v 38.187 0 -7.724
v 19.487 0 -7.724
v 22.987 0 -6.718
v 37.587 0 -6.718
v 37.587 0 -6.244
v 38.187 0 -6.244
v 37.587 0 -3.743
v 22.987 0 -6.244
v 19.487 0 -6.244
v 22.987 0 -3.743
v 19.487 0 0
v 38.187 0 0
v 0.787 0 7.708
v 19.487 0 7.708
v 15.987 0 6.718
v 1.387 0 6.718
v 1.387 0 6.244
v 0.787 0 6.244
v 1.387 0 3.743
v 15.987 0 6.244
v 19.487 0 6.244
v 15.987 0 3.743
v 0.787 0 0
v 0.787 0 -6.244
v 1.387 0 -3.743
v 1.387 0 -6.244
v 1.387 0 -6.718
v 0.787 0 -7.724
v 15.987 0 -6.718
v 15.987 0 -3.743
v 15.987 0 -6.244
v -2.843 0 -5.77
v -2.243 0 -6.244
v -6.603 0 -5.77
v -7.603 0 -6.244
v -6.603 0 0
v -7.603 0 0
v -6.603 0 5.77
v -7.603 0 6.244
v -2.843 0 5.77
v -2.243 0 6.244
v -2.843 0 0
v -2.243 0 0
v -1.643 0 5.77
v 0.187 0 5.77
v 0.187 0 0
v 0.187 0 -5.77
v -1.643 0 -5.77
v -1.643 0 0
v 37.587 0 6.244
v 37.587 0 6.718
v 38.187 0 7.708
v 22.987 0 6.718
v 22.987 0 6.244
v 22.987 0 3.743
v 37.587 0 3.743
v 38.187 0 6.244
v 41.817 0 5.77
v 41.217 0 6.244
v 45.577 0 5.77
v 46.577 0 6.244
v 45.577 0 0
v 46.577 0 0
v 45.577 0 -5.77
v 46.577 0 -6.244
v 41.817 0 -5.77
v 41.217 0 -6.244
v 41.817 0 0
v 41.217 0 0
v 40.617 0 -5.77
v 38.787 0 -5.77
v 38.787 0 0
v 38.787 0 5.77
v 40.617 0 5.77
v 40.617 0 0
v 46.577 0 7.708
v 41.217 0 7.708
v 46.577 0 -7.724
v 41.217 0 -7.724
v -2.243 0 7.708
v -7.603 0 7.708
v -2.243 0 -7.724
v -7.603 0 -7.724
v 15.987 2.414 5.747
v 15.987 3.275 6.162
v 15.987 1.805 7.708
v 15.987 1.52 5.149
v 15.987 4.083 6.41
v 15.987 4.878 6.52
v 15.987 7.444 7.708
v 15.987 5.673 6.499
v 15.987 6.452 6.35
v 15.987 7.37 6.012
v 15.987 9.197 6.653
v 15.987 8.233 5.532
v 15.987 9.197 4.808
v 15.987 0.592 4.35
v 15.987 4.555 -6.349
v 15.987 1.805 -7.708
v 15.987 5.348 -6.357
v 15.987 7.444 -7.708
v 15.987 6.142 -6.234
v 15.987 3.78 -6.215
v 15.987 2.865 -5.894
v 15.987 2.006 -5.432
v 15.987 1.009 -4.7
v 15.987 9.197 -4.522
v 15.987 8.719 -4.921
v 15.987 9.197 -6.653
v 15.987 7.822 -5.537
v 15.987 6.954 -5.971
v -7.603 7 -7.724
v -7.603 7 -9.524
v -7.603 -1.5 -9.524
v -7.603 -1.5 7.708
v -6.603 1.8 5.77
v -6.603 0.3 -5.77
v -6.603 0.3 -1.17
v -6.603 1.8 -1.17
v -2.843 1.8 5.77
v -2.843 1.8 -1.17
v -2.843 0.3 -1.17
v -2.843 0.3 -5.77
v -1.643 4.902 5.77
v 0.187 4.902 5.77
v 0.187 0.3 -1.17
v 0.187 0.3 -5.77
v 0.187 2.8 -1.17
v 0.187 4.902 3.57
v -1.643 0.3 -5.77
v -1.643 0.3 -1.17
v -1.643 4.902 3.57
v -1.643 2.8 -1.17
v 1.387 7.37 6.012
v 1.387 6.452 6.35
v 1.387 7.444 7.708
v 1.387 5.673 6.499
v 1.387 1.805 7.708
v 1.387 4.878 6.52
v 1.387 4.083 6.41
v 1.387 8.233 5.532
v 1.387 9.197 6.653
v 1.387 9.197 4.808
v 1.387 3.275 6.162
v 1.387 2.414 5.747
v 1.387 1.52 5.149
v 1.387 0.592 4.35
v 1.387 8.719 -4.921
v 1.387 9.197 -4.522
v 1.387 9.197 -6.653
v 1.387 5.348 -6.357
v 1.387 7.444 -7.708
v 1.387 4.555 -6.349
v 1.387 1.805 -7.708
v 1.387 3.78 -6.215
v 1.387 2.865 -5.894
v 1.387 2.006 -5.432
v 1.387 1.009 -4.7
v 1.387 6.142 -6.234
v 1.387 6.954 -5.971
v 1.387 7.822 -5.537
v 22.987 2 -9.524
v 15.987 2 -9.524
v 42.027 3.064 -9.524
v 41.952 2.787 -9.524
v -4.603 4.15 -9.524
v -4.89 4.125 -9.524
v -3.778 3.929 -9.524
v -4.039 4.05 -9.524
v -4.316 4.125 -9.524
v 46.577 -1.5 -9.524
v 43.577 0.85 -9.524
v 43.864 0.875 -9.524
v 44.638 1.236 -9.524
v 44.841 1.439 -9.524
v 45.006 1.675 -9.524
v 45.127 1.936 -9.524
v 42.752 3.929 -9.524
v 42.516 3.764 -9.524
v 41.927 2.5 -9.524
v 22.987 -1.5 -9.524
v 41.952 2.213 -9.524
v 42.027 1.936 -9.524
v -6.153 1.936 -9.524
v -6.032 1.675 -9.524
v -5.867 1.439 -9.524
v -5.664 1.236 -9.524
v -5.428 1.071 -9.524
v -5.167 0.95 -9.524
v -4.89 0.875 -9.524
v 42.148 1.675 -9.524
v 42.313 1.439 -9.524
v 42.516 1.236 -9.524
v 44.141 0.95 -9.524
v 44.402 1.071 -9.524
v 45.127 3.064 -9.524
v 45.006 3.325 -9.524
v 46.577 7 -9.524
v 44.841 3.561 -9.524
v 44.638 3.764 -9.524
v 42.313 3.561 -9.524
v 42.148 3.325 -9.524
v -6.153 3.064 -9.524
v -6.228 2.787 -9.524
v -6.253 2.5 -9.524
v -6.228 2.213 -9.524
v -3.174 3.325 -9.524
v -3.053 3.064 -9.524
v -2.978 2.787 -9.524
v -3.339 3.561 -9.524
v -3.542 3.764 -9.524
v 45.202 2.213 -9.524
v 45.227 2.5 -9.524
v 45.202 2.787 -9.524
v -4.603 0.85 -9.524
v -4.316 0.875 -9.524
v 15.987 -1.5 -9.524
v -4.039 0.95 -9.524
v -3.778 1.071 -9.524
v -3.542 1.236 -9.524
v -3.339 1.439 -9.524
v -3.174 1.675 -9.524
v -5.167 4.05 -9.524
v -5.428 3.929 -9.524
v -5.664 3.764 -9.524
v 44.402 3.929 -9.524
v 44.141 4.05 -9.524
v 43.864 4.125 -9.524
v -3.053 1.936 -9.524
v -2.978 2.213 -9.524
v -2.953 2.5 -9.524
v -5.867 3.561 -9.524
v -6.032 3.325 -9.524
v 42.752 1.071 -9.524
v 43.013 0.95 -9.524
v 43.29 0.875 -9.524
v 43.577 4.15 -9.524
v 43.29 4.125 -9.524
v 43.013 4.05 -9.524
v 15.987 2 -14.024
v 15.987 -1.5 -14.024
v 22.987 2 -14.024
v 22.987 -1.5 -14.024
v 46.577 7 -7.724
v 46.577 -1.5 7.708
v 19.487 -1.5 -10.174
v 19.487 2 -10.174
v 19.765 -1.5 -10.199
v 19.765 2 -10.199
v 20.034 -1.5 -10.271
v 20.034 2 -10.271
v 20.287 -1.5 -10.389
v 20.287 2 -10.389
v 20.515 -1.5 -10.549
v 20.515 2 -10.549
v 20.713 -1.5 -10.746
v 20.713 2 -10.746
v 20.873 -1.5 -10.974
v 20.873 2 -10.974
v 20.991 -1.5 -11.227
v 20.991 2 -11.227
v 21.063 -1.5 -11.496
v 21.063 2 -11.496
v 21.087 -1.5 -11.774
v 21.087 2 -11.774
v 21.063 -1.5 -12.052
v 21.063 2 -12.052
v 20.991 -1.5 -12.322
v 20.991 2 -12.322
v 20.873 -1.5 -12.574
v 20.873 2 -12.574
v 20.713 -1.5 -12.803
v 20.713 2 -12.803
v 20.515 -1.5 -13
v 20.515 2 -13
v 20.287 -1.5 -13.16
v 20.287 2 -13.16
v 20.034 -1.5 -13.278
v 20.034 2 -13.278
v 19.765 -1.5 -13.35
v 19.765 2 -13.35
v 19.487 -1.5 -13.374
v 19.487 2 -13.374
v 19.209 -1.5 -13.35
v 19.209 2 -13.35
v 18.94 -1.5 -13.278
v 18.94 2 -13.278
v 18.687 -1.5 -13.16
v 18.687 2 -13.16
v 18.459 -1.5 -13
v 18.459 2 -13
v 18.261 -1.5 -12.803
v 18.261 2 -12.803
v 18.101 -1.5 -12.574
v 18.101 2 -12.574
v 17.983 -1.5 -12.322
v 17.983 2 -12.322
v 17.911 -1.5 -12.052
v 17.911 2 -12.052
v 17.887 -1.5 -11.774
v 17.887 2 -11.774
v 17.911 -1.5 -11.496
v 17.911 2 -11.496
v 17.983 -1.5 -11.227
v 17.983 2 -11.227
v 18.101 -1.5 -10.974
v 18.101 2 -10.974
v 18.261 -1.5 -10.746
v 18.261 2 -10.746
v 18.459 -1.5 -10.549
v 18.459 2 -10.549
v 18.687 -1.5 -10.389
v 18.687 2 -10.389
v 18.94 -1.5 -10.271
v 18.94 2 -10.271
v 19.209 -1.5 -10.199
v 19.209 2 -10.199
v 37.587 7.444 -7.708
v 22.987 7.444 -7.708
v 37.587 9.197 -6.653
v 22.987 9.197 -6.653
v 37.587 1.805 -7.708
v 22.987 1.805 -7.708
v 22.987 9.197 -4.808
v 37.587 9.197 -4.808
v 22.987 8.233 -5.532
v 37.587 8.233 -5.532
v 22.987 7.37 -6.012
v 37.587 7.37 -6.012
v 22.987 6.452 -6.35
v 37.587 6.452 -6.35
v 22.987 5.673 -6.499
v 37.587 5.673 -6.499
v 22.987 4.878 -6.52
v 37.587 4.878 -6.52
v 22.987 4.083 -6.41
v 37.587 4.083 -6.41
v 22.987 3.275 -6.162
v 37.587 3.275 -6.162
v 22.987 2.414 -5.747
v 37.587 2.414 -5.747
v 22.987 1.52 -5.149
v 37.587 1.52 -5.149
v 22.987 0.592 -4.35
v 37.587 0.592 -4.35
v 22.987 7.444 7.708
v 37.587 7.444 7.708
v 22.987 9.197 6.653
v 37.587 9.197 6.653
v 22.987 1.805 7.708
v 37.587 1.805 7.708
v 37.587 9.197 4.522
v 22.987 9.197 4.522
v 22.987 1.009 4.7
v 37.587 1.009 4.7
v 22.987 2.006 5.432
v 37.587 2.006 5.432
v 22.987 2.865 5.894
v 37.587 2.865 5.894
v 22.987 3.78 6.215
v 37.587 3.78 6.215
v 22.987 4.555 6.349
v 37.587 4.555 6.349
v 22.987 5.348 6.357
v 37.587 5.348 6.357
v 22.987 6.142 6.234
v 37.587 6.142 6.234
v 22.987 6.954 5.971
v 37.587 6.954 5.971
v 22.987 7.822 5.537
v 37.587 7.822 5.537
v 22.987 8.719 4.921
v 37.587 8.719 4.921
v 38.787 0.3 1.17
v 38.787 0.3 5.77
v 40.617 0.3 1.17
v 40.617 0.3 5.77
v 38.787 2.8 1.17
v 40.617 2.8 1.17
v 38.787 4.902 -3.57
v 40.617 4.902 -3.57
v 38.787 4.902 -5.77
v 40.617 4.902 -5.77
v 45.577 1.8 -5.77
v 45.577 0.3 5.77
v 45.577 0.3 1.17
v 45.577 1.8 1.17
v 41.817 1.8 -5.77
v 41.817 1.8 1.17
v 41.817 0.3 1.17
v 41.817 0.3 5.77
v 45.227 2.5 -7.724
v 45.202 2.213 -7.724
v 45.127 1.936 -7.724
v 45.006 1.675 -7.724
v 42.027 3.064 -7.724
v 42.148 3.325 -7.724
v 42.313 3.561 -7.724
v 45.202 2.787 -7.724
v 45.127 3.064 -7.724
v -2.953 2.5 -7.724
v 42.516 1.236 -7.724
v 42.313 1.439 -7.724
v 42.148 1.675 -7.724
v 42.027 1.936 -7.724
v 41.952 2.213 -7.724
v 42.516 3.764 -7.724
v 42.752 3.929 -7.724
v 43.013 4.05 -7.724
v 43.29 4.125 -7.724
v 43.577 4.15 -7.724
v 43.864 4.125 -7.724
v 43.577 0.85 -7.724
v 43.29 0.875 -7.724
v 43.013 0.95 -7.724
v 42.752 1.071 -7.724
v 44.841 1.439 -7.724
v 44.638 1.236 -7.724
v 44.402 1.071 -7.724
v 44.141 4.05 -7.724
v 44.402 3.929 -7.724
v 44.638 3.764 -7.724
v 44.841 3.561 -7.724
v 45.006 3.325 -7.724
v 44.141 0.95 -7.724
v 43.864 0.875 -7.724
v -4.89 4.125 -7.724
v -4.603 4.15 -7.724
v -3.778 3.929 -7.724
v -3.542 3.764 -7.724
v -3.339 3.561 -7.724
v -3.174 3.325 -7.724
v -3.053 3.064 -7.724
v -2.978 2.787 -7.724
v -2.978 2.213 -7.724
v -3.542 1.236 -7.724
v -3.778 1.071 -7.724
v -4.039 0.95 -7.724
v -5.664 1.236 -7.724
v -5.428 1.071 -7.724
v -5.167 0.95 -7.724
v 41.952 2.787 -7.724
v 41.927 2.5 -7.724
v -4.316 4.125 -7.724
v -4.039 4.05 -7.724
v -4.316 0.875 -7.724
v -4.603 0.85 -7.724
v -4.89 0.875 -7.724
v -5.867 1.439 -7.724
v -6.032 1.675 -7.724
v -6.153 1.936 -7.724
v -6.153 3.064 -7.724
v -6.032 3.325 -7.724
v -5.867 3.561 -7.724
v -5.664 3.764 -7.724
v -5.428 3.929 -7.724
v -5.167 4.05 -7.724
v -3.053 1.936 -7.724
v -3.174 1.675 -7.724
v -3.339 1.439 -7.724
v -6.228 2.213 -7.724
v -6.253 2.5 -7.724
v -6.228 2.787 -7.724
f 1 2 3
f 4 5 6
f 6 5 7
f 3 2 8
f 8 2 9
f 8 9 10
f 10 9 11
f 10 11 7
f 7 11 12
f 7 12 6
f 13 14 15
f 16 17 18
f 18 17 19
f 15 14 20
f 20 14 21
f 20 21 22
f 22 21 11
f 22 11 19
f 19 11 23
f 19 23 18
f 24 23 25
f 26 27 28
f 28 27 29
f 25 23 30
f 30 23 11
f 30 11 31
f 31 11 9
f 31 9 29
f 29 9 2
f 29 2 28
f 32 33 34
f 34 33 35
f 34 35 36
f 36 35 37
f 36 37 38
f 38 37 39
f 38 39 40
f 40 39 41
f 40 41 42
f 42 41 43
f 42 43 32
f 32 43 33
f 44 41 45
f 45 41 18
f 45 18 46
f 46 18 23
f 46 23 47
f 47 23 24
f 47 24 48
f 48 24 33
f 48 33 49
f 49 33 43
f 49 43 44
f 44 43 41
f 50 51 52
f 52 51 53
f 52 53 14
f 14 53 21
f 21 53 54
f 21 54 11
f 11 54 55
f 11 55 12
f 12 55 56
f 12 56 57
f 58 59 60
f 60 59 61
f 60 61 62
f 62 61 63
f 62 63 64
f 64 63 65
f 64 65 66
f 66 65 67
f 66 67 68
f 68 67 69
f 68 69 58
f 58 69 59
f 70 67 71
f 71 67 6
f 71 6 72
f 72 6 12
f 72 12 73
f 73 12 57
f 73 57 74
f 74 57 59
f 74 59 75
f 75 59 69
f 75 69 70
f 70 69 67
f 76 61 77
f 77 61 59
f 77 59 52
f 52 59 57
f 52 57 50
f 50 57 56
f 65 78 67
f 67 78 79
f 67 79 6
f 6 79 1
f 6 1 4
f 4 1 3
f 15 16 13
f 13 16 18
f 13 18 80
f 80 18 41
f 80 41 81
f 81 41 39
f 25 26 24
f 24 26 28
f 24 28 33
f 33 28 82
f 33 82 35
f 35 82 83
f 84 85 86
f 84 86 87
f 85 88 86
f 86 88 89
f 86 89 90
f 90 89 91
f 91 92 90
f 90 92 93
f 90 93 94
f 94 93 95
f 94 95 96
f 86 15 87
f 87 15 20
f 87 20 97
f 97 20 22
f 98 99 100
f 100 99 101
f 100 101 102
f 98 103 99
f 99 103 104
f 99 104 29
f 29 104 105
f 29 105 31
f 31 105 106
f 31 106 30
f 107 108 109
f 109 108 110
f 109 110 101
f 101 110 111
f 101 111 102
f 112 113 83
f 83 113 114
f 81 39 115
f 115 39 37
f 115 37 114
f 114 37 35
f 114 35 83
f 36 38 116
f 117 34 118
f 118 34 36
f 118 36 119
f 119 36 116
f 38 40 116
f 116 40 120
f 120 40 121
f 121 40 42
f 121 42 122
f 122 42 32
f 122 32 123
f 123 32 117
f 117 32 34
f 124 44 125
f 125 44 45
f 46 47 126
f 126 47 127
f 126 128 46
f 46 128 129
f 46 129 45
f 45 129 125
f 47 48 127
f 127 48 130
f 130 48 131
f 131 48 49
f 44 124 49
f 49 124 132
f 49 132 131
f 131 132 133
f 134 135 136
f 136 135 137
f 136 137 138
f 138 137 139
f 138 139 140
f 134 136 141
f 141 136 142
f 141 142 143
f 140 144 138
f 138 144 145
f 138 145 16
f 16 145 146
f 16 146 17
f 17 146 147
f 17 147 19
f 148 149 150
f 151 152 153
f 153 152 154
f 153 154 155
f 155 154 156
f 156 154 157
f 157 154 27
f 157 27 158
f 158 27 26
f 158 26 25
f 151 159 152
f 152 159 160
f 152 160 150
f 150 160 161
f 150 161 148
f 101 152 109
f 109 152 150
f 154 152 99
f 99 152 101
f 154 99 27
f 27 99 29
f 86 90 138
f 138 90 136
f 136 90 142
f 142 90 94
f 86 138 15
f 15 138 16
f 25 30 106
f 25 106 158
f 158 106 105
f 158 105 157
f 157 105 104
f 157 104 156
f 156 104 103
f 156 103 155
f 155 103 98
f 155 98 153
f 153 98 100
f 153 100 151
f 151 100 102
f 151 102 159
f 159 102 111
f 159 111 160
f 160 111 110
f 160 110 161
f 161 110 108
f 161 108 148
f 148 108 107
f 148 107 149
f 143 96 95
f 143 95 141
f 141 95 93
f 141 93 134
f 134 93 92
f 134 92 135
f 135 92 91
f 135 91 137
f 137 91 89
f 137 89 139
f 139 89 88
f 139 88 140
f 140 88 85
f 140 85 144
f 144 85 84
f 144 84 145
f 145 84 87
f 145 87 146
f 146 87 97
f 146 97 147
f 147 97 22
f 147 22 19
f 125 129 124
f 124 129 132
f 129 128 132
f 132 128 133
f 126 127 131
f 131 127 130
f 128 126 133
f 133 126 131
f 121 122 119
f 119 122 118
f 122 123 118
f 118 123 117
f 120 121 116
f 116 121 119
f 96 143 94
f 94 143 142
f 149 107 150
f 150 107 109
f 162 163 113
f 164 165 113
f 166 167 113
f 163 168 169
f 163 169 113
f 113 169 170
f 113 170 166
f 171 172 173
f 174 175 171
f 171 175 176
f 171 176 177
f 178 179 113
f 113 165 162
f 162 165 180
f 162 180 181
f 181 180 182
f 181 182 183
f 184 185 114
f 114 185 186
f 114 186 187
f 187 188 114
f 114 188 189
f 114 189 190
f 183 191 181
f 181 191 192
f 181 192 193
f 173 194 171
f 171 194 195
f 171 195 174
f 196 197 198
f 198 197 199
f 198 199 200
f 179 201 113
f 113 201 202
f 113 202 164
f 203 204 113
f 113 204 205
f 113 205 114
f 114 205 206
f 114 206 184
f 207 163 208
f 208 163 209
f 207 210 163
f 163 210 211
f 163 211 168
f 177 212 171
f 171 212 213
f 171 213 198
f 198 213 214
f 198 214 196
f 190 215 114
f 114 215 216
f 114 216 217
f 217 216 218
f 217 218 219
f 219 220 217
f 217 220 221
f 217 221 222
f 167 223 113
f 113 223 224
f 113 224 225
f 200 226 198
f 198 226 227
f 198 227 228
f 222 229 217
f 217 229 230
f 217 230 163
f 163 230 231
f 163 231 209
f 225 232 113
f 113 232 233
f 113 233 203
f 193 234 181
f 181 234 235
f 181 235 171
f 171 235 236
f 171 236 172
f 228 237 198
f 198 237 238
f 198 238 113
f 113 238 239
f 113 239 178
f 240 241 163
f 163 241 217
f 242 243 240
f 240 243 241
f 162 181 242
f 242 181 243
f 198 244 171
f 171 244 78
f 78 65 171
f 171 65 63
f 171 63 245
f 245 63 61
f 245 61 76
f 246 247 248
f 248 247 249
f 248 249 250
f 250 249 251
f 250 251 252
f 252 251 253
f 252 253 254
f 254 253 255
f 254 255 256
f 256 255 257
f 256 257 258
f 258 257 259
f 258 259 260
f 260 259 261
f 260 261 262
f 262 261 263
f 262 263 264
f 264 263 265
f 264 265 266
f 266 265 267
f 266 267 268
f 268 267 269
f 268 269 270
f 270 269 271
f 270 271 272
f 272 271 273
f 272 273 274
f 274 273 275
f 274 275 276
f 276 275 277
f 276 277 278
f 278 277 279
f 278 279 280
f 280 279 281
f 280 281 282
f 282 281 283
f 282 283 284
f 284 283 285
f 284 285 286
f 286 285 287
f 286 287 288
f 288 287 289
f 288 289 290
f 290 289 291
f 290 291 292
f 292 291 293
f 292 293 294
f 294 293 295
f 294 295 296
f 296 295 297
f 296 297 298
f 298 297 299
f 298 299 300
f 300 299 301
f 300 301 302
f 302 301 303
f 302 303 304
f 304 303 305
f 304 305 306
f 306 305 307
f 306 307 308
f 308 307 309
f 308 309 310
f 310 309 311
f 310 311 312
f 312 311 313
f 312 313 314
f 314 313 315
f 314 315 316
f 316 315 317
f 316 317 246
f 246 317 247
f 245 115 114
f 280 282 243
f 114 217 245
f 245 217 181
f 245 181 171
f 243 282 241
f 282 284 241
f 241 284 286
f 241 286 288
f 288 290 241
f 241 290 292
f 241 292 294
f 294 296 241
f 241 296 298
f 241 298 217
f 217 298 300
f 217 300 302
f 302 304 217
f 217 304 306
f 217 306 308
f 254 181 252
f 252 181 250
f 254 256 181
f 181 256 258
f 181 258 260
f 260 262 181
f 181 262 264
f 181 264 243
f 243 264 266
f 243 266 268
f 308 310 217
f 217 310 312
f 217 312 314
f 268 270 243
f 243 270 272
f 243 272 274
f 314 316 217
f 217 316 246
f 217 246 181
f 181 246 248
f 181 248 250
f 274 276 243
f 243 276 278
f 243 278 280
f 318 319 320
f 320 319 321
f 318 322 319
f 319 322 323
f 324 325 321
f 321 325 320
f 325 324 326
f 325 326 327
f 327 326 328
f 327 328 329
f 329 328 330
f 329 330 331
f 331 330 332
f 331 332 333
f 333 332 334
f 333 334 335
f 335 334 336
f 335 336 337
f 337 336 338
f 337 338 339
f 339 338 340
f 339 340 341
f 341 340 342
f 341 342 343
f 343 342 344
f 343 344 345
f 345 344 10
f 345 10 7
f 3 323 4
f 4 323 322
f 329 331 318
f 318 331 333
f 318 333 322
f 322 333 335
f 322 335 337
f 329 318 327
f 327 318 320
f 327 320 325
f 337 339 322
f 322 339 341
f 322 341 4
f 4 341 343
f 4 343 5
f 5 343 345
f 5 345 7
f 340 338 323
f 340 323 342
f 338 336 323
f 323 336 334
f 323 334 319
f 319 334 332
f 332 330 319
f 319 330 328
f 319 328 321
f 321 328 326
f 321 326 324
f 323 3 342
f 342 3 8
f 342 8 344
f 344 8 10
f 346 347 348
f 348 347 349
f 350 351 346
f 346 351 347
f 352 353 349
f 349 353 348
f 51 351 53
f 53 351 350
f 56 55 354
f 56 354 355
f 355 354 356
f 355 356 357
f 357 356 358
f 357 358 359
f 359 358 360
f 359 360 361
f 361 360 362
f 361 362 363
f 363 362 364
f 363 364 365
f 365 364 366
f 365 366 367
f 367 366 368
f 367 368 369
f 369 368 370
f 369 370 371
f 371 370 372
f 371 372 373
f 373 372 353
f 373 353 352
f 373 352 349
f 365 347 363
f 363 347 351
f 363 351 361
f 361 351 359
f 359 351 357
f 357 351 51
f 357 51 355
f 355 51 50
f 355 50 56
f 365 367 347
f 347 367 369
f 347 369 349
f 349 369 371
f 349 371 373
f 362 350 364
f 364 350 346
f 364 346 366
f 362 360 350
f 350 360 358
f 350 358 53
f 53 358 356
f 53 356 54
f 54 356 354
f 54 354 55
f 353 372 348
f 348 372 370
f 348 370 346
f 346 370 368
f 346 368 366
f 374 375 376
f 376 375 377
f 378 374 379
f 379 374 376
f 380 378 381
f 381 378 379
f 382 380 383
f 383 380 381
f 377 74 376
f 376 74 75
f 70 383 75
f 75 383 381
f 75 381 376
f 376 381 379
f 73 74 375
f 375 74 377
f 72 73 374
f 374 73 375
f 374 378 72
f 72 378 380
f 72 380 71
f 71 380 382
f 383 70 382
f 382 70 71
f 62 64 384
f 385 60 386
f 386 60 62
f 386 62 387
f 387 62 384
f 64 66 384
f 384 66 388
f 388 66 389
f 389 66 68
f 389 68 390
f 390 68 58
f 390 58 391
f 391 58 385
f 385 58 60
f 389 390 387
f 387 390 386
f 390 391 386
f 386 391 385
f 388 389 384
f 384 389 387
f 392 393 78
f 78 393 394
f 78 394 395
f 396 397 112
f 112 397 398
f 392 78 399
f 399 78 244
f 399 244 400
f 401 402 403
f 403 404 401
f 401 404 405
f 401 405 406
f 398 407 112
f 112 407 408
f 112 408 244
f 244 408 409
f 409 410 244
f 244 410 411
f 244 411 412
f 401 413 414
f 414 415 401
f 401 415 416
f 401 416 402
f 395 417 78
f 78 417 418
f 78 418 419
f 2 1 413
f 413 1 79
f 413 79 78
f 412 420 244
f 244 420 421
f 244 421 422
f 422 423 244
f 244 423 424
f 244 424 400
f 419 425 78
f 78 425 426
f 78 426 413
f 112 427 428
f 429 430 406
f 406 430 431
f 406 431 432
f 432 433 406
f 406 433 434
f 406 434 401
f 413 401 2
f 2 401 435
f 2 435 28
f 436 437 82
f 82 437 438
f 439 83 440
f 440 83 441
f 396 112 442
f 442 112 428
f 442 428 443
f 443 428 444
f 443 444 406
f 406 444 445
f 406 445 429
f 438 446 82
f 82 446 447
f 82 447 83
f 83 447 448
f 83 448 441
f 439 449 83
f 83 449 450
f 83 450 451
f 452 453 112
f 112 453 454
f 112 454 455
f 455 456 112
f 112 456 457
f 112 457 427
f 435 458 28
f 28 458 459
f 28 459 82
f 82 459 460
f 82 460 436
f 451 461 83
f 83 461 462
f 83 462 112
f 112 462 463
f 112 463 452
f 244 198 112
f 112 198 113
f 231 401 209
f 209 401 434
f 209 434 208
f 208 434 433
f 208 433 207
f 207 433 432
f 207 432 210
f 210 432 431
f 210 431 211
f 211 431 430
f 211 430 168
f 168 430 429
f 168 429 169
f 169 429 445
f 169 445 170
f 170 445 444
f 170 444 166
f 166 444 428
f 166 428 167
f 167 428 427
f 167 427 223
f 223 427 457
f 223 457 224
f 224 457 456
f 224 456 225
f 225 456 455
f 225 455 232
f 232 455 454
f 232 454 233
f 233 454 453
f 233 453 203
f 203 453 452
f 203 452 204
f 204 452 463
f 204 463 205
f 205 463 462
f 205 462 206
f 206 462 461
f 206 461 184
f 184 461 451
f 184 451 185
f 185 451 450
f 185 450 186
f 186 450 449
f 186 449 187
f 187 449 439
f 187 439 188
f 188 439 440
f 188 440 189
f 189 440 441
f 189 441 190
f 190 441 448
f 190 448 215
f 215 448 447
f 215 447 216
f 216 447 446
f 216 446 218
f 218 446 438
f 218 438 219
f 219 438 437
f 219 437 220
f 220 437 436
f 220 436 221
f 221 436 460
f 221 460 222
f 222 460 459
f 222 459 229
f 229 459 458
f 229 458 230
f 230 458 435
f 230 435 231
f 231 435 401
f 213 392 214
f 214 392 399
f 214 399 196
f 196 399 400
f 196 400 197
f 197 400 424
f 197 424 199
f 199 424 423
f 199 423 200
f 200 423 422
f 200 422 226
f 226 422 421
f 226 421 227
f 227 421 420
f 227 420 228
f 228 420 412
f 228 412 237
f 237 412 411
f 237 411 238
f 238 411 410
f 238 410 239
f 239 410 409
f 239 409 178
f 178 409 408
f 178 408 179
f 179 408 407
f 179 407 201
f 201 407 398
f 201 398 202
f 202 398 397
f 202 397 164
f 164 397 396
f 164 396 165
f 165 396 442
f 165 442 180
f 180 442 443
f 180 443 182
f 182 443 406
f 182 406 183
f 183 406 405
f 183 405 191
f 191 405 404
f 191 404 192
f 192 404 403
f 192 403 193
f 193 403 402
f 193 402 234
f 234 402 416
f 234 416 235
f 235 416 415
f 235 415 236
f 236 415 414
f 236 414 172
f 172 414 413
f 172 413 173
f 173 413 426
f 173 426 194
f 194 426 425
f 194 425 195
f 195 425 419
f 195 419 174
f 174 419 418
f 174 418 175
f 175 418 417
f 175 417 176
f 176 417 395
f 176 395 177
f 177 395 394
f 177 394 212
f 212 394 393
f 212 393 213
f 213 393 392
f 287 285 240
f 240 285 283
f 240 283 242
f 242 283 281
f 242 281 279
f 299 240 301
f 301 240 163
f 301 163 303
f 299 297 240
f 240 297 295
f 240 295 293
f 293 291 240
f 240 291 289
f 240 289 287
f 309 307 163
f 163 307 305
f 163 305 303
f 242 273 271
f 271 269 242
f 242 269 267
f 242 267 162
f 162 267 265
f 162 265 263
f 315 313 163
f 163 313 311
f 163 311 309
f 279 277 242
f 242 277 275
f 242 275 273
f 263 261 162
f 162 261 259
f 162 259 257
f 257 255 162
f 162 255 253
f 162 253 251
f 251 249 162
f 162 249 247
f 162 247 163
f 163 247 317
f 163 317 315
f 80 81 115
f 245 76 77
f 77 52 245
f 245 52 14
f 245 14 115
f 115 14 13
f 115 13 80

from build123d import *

# Parameters (mm, degrees)
SKETCH_1_W               = 23.59
SKETCH_1_H               = 12.34
EXTRUDE_1_DEPTH          = 1
SKETCH_1_3_W             = 14.6
SKETCH_1_3_H             = 2.72
SKETCH_1_3_W_2           = 3.76
SKETCH_1_3_H_2           = 11.54
SKETCH_1_3_W_3           = 1.83
EXTRUDE_2_DEPTH          = 10
EXTRUDE_3_DEPTH          = 14.6
CUT_EXTRUDE_1_DEPTH      = 14.6
CUT_EXTRUDE_2_DEPTH      = 14.6
CUT_EXTRUDE_3_DEPTH      = 14.6
PATTERN_CIRCULAR_1_COUNT = 2
SKETCH_7_W               = 20.64829466
SKETCH_7_H               = 2.860597992
CUT_EXTRUDE_4_DEPTH      = 38.6
SKETCH_8_R               = 1.6
EXTRUDE_4_DEPTH          = 1.5
SKETCH_9_W               = 54.18
SKETCH_9_H               = 1.8
EXTRUDE_5_DEPTH          = 7
SKETCH_10_R              = 1.65
CUT_EXTRUDE_5_DEPTH      = 5
EXTRUDE_START            = 2
SKETCH_8_3_W             = 7
SKETCH_8_3_H             = 4.5
SKETCH_8_3_R             = 1.6
EXTRUDE_6_DEPTH          = 2
SKETCH_11_W              = 54.18
SKETCH_11_H              = 6.653379434
CUT_EXTRUDE_6_DEPTH      = 5


with BuildPart() as part:
    # 草图1 → 凸台-拉伸1 (new body)
    with BuildSketch(Plane(origin=(0, 0, 0), x_dir=(1, 0, 0), z_dir=(0, 1, 0))):
        with Locations((4.192, 0)):
            Rectangle(SKETCH_1_W, SKETCH_1_H)
    extrude(amount=-EXTRUDE_1_DEPTH)

    # 草图1<3> → 凸台-拉伸2 (add)
    with BuildSketch(Plane(origin=(0, 0, 0), x_dir=(1, 0, 0), z_dir=(0, 1, 0))):
        with Locations((8.687, 4.81)):
            Rectangle(SKETCH_1_3_W, SKETCH_1_3_H)
        with Locations((8.687, -4.81)):
            Rectangle(SKETCH_1_3_W, SKETCH_1_3_H)
        with Locations((-4.723, 0)):
            Rectangle(SKETCH_1_3_W_2, SKETCH_1_3_H_2)
        with Locations((-0.728, 0)):
            Rectangle(SKETCH_1_3_W_3, SKETCH_1_3_H_2)
    extrude(amount=EXTRUDE_2_DEPTH)

    # 草图4 → 凸台-拉伸3 (add)
    with BuildSketch(Plane(origin=(15.987, 0, 0), x_dir=(0, 0, -1), z_dir=(1, 0, 0))):
        Polygon((6.17, 10), (7.707580576, 7.443577481), (7.707580576, 1.805314446), (6.17, -1), align=None)
        Polygon((-7.707580576, 1.805314446), (-6.17, -1), (-6.17, 10), (-7.707580576, 7.443577481), align=None)
    extrude(amount=-EXTRUDE_3_DEPTH)

    # 草图3 → 切除-拉伸1 (cut)
    with BuildSketch(Plane(origin=(15.987, 0, 0), x_dir=(0, 0, -1), z_dir=(1, 0, 0))):
        with BuildLine():
            Line((3.45, 0), (3.743222721, 0))
            add(Edge.make_bspline(
                [(3.743222721, 0), (3.911611309, 0.15963804), (4.29393083, 0.539845441), (4.994683036, 1.333496486), (5.723480991, 2.402845903), (6.251271172, 3.695549278), (6.429364414, 5), (6.251271172, 6.304450722), (5.723480991, 7.597154097), (4.994683036, 8.666503514), (4.253106755, 9.506390689), (3.815688064, 9.935054209), (3.597380816, 10.136172737)],
                knots=[0.014828564, 0.014828564, 0.014828564, 0.014828564, 0.0625, 0.125, 0.25, 0.375, 0.5, 0.625, 0.75, 0.875, 0.9375, 0.998871937, 0.998871937, 0.998871937, 0.998871937], degree=3))
            Line((3.597380816, 10.136172737), (3.45, 10))
            Line((3.45, 10), (3.45, 0))
        make_face()
        with BuildLine():
            Line((-3.45, 0), (-3.743222721, 0))
            add(Edge.make_bspline(
                [(-3.743222721, 0), (-3.781981306, 0.035623699), (-3.849464206, 0.098316559), (-4.072000203, 0.30899054), (-4.461726475, 0.698324492), (-5.152564834, 1.48074741), (-5.881362789, 2.550096827), (-6.40915297, 3.842800202), (-6.587246212, 5.147250924), (-6.40915297, 6.451701646), (-5.881362789, 7.744405021), (-5.152564834, 8.813754438), (-4.461708764, 9.596197415), (-4.071967827, 9.985543512), (-3.84942965, 10.196217487), (-3.781968617, 10.258889811), (-3.743222721, 10.294501848)],
                knots=[0, 0, 0, 0, 0.010893382, 0.018155637, 0.0625, 0.125, 0.25, 0.375, 0.5, 0.625, 0.75, 0.875, 0.9375, 0.981850307, 0.989110184, 1, 1, 1, 1], degree=3))
            Line((-3.743222721, 10.294501848), (-3.45, 10))
            Line((-3.45, 10), (-3.45, 0))
        make_face()
    extrude(amount=-CUT_EXTRUDE_1_DEPTH, mode=Mode.SUBTRACT)

    # 草图5 → 切除-拉伸2 (cut)
    with BuildSketch(Plane(origin=(0.187, 0, 0), x_dir=(0, 0, -1), z_dir=(1, 0, 0))):
        Polygon((1.17, 2.8), (-3.569711506, 4.901860767), (-5.77, 4.901860767), (-5.77, 10), (5.77, 10), (5.77, 0.3), (1.17, 0.3), align=None)
    extrude(amount=-CUT_EXTRUDE_2_DEPTH, mode=Mode.SUBTRACT)

    # 草图6 → 切除-拉伸3 (cut)
    with BuildSketch(Plane(origin=(-2.843, 0, 0), x_dir=(0, 0, -1), z_dir=(1, 0, 0))):
        Polygon((1.17, 5.538552109), (1.17, 1.8), (-3.795527251, 1.8), (-5.77, 1.8), (-5.77, 5.538552109), align=None)
    extrude(amount=-CUT_EXTRUDE_3_DEPTH, mode=Mode.SUBTRACT)


with BuildPart() as pattern_circular_1_1:
    # 阵列(圆周)1: pattern copy
    add(part.part.rotate(Axis((19.487, -1.5500525, 0), (0, 1, 0)), 1 * 360 / PATTERN_CIRCULAR_1_COUNT))


with BuildPart() as cut_extrude_4_tool:
    # 草图7 → 切除-拉伸4 (new body)
    with BuildSketch(Plane.ZY.offset(-1.387)):
        with Locations((-0.112362095, 10.62761907)):
            Rectangle(SKETCH_7_W, SKETCH_7_H)
    extrude(amount=-CUT_EXTRUDE_4_DEPTH)


with BuildPart() as part_1:
    add(part.part)

    # 切除-拉伸4: cut by cut_extrude_4_tool
    add(cut_extrude_4_tool.part, mode=Mode.SUBTRACT)



with BuildPart() as pattern_circular_1_1_1:
    add(pattern_circular_1_1.part)

    # 切除-拉伸4: cut by cut_extrude_4_tool
    add(cut_extrude_4_tool.part, mode=Mode.SUBTRACT)


with BuildPart() as part_2:
    add(part_1.part)

    add(pattern_circular_1_1_1.part)  # 凸台-拉伸4 merges 阵列(圆周)1_1
    # 草图8 → 凸台-拉伸4 (add)
    with BuildSketch(Plane(origin=(0, 0, 0), x_dir=(1, 0, 0), z_dir=(0, 1, 0))):
        Polygon((22.987, -9.524287518), (46.577, -9.524287518), (46.577, 9.524287518), (22.987, 9.524287518), (22.987, 14.024287518), (15.987, 14.024287518), (15.987, 9.524287518), (-7.603, 9.524287518), (-7.603, -9.524287518), (15.987, -9.524287518), (15.987, -14.024287518), (22.987, -14.024287518), align=None)
        with Locations((19.487, -11.774287518)):
            Circle(SKETCH_8_R, mode=Mode.SUBTRACT)
        with Locations((19.487, 11.774287518)):
            Circle(SKETCH_8_R, mode=Mode.SUBTRACT)
    extrude(amount=-EXTRUDE_4_DEPTH)

    # 草图9 → 凸台-拉伸5 (add)
    with BuildSketch(Plane(origin=(0, 0, 0), x_dir=(1, 0, 0), z_dir=(0, 1, 0))):
        with Locations((19.487, 8.624287518)):
            Rectangle(SKETCH_9_W, SKETCH_9_H)
    extrude(amount=EXTRUDE_5_DEPTH)

    # 草图10 → 切除-拉伸5 (cut)
    with BuildSketch(Plane.XY.offset(-7.724287518)):
        with Locations((-4.603, 2.5)):
            Circle(SKETCH_10_R)
        with Locations((43.577, 2.5)):
            Circle(SKETCH_10_R)
    extrude(amount=-CUT_EXTRUDE_5_DEPTH, mode=Mode.SUBTRACT)

    # 草图8<3> → 凸台-拉伸6 (add)
    # profile 1 of 2: a face of its own
    with BuildSketch(Plane(origin=(0, 0, 0), x_dir=(1, 0, 0), z_dir=(0, 1, 0)).offset(EXTRUDE_START)):
        with Locations((19.487, -11.774287518)):
            Rectangle(SKETCH_8_3_W, SKETCH_8_3_H)
        with Locations((19.487, -11.774287518)):
            Circle(SKETCH_8_3_R, mode=Mode.SUBTRACT)
    # profile 2 of 2: a face of its own
    with BuildSketch(Plane(origin=(0, 0, 0), x_dir=(1, 0, 0), z_dir=(0, 1, 0)).offset(EXTRUDE_START)):
        with Locations((19.487, 11.774287518)):
            Rectangle(SKETCH_8_3_W, SKETCH_8_3_H)
        with Locations((19.487, 11.774287518)):
            Circle(SKETCH_8_3_R, mode=Mode.SUBTRACT)
    extrude(amount=-EXTRUDE_6_DEPTH)

    # 草图11 → 切除-拉伸6 (cut, symmetric)
    with BuildSketch(Plane(origin=(0, 0, 0), x_dir=(1, 0, 0), z_dir=(0, 1, 0))):
        with Locations((19.487, -11.034270293)):
            Rectangle(SKETCH_11_W, SKETCH_11_H)
    extrude(amount=CUT_EXTRUDE_6_DEPTH, both=True, mode=Mode.SUBTRACT)


solid = part_2.part
